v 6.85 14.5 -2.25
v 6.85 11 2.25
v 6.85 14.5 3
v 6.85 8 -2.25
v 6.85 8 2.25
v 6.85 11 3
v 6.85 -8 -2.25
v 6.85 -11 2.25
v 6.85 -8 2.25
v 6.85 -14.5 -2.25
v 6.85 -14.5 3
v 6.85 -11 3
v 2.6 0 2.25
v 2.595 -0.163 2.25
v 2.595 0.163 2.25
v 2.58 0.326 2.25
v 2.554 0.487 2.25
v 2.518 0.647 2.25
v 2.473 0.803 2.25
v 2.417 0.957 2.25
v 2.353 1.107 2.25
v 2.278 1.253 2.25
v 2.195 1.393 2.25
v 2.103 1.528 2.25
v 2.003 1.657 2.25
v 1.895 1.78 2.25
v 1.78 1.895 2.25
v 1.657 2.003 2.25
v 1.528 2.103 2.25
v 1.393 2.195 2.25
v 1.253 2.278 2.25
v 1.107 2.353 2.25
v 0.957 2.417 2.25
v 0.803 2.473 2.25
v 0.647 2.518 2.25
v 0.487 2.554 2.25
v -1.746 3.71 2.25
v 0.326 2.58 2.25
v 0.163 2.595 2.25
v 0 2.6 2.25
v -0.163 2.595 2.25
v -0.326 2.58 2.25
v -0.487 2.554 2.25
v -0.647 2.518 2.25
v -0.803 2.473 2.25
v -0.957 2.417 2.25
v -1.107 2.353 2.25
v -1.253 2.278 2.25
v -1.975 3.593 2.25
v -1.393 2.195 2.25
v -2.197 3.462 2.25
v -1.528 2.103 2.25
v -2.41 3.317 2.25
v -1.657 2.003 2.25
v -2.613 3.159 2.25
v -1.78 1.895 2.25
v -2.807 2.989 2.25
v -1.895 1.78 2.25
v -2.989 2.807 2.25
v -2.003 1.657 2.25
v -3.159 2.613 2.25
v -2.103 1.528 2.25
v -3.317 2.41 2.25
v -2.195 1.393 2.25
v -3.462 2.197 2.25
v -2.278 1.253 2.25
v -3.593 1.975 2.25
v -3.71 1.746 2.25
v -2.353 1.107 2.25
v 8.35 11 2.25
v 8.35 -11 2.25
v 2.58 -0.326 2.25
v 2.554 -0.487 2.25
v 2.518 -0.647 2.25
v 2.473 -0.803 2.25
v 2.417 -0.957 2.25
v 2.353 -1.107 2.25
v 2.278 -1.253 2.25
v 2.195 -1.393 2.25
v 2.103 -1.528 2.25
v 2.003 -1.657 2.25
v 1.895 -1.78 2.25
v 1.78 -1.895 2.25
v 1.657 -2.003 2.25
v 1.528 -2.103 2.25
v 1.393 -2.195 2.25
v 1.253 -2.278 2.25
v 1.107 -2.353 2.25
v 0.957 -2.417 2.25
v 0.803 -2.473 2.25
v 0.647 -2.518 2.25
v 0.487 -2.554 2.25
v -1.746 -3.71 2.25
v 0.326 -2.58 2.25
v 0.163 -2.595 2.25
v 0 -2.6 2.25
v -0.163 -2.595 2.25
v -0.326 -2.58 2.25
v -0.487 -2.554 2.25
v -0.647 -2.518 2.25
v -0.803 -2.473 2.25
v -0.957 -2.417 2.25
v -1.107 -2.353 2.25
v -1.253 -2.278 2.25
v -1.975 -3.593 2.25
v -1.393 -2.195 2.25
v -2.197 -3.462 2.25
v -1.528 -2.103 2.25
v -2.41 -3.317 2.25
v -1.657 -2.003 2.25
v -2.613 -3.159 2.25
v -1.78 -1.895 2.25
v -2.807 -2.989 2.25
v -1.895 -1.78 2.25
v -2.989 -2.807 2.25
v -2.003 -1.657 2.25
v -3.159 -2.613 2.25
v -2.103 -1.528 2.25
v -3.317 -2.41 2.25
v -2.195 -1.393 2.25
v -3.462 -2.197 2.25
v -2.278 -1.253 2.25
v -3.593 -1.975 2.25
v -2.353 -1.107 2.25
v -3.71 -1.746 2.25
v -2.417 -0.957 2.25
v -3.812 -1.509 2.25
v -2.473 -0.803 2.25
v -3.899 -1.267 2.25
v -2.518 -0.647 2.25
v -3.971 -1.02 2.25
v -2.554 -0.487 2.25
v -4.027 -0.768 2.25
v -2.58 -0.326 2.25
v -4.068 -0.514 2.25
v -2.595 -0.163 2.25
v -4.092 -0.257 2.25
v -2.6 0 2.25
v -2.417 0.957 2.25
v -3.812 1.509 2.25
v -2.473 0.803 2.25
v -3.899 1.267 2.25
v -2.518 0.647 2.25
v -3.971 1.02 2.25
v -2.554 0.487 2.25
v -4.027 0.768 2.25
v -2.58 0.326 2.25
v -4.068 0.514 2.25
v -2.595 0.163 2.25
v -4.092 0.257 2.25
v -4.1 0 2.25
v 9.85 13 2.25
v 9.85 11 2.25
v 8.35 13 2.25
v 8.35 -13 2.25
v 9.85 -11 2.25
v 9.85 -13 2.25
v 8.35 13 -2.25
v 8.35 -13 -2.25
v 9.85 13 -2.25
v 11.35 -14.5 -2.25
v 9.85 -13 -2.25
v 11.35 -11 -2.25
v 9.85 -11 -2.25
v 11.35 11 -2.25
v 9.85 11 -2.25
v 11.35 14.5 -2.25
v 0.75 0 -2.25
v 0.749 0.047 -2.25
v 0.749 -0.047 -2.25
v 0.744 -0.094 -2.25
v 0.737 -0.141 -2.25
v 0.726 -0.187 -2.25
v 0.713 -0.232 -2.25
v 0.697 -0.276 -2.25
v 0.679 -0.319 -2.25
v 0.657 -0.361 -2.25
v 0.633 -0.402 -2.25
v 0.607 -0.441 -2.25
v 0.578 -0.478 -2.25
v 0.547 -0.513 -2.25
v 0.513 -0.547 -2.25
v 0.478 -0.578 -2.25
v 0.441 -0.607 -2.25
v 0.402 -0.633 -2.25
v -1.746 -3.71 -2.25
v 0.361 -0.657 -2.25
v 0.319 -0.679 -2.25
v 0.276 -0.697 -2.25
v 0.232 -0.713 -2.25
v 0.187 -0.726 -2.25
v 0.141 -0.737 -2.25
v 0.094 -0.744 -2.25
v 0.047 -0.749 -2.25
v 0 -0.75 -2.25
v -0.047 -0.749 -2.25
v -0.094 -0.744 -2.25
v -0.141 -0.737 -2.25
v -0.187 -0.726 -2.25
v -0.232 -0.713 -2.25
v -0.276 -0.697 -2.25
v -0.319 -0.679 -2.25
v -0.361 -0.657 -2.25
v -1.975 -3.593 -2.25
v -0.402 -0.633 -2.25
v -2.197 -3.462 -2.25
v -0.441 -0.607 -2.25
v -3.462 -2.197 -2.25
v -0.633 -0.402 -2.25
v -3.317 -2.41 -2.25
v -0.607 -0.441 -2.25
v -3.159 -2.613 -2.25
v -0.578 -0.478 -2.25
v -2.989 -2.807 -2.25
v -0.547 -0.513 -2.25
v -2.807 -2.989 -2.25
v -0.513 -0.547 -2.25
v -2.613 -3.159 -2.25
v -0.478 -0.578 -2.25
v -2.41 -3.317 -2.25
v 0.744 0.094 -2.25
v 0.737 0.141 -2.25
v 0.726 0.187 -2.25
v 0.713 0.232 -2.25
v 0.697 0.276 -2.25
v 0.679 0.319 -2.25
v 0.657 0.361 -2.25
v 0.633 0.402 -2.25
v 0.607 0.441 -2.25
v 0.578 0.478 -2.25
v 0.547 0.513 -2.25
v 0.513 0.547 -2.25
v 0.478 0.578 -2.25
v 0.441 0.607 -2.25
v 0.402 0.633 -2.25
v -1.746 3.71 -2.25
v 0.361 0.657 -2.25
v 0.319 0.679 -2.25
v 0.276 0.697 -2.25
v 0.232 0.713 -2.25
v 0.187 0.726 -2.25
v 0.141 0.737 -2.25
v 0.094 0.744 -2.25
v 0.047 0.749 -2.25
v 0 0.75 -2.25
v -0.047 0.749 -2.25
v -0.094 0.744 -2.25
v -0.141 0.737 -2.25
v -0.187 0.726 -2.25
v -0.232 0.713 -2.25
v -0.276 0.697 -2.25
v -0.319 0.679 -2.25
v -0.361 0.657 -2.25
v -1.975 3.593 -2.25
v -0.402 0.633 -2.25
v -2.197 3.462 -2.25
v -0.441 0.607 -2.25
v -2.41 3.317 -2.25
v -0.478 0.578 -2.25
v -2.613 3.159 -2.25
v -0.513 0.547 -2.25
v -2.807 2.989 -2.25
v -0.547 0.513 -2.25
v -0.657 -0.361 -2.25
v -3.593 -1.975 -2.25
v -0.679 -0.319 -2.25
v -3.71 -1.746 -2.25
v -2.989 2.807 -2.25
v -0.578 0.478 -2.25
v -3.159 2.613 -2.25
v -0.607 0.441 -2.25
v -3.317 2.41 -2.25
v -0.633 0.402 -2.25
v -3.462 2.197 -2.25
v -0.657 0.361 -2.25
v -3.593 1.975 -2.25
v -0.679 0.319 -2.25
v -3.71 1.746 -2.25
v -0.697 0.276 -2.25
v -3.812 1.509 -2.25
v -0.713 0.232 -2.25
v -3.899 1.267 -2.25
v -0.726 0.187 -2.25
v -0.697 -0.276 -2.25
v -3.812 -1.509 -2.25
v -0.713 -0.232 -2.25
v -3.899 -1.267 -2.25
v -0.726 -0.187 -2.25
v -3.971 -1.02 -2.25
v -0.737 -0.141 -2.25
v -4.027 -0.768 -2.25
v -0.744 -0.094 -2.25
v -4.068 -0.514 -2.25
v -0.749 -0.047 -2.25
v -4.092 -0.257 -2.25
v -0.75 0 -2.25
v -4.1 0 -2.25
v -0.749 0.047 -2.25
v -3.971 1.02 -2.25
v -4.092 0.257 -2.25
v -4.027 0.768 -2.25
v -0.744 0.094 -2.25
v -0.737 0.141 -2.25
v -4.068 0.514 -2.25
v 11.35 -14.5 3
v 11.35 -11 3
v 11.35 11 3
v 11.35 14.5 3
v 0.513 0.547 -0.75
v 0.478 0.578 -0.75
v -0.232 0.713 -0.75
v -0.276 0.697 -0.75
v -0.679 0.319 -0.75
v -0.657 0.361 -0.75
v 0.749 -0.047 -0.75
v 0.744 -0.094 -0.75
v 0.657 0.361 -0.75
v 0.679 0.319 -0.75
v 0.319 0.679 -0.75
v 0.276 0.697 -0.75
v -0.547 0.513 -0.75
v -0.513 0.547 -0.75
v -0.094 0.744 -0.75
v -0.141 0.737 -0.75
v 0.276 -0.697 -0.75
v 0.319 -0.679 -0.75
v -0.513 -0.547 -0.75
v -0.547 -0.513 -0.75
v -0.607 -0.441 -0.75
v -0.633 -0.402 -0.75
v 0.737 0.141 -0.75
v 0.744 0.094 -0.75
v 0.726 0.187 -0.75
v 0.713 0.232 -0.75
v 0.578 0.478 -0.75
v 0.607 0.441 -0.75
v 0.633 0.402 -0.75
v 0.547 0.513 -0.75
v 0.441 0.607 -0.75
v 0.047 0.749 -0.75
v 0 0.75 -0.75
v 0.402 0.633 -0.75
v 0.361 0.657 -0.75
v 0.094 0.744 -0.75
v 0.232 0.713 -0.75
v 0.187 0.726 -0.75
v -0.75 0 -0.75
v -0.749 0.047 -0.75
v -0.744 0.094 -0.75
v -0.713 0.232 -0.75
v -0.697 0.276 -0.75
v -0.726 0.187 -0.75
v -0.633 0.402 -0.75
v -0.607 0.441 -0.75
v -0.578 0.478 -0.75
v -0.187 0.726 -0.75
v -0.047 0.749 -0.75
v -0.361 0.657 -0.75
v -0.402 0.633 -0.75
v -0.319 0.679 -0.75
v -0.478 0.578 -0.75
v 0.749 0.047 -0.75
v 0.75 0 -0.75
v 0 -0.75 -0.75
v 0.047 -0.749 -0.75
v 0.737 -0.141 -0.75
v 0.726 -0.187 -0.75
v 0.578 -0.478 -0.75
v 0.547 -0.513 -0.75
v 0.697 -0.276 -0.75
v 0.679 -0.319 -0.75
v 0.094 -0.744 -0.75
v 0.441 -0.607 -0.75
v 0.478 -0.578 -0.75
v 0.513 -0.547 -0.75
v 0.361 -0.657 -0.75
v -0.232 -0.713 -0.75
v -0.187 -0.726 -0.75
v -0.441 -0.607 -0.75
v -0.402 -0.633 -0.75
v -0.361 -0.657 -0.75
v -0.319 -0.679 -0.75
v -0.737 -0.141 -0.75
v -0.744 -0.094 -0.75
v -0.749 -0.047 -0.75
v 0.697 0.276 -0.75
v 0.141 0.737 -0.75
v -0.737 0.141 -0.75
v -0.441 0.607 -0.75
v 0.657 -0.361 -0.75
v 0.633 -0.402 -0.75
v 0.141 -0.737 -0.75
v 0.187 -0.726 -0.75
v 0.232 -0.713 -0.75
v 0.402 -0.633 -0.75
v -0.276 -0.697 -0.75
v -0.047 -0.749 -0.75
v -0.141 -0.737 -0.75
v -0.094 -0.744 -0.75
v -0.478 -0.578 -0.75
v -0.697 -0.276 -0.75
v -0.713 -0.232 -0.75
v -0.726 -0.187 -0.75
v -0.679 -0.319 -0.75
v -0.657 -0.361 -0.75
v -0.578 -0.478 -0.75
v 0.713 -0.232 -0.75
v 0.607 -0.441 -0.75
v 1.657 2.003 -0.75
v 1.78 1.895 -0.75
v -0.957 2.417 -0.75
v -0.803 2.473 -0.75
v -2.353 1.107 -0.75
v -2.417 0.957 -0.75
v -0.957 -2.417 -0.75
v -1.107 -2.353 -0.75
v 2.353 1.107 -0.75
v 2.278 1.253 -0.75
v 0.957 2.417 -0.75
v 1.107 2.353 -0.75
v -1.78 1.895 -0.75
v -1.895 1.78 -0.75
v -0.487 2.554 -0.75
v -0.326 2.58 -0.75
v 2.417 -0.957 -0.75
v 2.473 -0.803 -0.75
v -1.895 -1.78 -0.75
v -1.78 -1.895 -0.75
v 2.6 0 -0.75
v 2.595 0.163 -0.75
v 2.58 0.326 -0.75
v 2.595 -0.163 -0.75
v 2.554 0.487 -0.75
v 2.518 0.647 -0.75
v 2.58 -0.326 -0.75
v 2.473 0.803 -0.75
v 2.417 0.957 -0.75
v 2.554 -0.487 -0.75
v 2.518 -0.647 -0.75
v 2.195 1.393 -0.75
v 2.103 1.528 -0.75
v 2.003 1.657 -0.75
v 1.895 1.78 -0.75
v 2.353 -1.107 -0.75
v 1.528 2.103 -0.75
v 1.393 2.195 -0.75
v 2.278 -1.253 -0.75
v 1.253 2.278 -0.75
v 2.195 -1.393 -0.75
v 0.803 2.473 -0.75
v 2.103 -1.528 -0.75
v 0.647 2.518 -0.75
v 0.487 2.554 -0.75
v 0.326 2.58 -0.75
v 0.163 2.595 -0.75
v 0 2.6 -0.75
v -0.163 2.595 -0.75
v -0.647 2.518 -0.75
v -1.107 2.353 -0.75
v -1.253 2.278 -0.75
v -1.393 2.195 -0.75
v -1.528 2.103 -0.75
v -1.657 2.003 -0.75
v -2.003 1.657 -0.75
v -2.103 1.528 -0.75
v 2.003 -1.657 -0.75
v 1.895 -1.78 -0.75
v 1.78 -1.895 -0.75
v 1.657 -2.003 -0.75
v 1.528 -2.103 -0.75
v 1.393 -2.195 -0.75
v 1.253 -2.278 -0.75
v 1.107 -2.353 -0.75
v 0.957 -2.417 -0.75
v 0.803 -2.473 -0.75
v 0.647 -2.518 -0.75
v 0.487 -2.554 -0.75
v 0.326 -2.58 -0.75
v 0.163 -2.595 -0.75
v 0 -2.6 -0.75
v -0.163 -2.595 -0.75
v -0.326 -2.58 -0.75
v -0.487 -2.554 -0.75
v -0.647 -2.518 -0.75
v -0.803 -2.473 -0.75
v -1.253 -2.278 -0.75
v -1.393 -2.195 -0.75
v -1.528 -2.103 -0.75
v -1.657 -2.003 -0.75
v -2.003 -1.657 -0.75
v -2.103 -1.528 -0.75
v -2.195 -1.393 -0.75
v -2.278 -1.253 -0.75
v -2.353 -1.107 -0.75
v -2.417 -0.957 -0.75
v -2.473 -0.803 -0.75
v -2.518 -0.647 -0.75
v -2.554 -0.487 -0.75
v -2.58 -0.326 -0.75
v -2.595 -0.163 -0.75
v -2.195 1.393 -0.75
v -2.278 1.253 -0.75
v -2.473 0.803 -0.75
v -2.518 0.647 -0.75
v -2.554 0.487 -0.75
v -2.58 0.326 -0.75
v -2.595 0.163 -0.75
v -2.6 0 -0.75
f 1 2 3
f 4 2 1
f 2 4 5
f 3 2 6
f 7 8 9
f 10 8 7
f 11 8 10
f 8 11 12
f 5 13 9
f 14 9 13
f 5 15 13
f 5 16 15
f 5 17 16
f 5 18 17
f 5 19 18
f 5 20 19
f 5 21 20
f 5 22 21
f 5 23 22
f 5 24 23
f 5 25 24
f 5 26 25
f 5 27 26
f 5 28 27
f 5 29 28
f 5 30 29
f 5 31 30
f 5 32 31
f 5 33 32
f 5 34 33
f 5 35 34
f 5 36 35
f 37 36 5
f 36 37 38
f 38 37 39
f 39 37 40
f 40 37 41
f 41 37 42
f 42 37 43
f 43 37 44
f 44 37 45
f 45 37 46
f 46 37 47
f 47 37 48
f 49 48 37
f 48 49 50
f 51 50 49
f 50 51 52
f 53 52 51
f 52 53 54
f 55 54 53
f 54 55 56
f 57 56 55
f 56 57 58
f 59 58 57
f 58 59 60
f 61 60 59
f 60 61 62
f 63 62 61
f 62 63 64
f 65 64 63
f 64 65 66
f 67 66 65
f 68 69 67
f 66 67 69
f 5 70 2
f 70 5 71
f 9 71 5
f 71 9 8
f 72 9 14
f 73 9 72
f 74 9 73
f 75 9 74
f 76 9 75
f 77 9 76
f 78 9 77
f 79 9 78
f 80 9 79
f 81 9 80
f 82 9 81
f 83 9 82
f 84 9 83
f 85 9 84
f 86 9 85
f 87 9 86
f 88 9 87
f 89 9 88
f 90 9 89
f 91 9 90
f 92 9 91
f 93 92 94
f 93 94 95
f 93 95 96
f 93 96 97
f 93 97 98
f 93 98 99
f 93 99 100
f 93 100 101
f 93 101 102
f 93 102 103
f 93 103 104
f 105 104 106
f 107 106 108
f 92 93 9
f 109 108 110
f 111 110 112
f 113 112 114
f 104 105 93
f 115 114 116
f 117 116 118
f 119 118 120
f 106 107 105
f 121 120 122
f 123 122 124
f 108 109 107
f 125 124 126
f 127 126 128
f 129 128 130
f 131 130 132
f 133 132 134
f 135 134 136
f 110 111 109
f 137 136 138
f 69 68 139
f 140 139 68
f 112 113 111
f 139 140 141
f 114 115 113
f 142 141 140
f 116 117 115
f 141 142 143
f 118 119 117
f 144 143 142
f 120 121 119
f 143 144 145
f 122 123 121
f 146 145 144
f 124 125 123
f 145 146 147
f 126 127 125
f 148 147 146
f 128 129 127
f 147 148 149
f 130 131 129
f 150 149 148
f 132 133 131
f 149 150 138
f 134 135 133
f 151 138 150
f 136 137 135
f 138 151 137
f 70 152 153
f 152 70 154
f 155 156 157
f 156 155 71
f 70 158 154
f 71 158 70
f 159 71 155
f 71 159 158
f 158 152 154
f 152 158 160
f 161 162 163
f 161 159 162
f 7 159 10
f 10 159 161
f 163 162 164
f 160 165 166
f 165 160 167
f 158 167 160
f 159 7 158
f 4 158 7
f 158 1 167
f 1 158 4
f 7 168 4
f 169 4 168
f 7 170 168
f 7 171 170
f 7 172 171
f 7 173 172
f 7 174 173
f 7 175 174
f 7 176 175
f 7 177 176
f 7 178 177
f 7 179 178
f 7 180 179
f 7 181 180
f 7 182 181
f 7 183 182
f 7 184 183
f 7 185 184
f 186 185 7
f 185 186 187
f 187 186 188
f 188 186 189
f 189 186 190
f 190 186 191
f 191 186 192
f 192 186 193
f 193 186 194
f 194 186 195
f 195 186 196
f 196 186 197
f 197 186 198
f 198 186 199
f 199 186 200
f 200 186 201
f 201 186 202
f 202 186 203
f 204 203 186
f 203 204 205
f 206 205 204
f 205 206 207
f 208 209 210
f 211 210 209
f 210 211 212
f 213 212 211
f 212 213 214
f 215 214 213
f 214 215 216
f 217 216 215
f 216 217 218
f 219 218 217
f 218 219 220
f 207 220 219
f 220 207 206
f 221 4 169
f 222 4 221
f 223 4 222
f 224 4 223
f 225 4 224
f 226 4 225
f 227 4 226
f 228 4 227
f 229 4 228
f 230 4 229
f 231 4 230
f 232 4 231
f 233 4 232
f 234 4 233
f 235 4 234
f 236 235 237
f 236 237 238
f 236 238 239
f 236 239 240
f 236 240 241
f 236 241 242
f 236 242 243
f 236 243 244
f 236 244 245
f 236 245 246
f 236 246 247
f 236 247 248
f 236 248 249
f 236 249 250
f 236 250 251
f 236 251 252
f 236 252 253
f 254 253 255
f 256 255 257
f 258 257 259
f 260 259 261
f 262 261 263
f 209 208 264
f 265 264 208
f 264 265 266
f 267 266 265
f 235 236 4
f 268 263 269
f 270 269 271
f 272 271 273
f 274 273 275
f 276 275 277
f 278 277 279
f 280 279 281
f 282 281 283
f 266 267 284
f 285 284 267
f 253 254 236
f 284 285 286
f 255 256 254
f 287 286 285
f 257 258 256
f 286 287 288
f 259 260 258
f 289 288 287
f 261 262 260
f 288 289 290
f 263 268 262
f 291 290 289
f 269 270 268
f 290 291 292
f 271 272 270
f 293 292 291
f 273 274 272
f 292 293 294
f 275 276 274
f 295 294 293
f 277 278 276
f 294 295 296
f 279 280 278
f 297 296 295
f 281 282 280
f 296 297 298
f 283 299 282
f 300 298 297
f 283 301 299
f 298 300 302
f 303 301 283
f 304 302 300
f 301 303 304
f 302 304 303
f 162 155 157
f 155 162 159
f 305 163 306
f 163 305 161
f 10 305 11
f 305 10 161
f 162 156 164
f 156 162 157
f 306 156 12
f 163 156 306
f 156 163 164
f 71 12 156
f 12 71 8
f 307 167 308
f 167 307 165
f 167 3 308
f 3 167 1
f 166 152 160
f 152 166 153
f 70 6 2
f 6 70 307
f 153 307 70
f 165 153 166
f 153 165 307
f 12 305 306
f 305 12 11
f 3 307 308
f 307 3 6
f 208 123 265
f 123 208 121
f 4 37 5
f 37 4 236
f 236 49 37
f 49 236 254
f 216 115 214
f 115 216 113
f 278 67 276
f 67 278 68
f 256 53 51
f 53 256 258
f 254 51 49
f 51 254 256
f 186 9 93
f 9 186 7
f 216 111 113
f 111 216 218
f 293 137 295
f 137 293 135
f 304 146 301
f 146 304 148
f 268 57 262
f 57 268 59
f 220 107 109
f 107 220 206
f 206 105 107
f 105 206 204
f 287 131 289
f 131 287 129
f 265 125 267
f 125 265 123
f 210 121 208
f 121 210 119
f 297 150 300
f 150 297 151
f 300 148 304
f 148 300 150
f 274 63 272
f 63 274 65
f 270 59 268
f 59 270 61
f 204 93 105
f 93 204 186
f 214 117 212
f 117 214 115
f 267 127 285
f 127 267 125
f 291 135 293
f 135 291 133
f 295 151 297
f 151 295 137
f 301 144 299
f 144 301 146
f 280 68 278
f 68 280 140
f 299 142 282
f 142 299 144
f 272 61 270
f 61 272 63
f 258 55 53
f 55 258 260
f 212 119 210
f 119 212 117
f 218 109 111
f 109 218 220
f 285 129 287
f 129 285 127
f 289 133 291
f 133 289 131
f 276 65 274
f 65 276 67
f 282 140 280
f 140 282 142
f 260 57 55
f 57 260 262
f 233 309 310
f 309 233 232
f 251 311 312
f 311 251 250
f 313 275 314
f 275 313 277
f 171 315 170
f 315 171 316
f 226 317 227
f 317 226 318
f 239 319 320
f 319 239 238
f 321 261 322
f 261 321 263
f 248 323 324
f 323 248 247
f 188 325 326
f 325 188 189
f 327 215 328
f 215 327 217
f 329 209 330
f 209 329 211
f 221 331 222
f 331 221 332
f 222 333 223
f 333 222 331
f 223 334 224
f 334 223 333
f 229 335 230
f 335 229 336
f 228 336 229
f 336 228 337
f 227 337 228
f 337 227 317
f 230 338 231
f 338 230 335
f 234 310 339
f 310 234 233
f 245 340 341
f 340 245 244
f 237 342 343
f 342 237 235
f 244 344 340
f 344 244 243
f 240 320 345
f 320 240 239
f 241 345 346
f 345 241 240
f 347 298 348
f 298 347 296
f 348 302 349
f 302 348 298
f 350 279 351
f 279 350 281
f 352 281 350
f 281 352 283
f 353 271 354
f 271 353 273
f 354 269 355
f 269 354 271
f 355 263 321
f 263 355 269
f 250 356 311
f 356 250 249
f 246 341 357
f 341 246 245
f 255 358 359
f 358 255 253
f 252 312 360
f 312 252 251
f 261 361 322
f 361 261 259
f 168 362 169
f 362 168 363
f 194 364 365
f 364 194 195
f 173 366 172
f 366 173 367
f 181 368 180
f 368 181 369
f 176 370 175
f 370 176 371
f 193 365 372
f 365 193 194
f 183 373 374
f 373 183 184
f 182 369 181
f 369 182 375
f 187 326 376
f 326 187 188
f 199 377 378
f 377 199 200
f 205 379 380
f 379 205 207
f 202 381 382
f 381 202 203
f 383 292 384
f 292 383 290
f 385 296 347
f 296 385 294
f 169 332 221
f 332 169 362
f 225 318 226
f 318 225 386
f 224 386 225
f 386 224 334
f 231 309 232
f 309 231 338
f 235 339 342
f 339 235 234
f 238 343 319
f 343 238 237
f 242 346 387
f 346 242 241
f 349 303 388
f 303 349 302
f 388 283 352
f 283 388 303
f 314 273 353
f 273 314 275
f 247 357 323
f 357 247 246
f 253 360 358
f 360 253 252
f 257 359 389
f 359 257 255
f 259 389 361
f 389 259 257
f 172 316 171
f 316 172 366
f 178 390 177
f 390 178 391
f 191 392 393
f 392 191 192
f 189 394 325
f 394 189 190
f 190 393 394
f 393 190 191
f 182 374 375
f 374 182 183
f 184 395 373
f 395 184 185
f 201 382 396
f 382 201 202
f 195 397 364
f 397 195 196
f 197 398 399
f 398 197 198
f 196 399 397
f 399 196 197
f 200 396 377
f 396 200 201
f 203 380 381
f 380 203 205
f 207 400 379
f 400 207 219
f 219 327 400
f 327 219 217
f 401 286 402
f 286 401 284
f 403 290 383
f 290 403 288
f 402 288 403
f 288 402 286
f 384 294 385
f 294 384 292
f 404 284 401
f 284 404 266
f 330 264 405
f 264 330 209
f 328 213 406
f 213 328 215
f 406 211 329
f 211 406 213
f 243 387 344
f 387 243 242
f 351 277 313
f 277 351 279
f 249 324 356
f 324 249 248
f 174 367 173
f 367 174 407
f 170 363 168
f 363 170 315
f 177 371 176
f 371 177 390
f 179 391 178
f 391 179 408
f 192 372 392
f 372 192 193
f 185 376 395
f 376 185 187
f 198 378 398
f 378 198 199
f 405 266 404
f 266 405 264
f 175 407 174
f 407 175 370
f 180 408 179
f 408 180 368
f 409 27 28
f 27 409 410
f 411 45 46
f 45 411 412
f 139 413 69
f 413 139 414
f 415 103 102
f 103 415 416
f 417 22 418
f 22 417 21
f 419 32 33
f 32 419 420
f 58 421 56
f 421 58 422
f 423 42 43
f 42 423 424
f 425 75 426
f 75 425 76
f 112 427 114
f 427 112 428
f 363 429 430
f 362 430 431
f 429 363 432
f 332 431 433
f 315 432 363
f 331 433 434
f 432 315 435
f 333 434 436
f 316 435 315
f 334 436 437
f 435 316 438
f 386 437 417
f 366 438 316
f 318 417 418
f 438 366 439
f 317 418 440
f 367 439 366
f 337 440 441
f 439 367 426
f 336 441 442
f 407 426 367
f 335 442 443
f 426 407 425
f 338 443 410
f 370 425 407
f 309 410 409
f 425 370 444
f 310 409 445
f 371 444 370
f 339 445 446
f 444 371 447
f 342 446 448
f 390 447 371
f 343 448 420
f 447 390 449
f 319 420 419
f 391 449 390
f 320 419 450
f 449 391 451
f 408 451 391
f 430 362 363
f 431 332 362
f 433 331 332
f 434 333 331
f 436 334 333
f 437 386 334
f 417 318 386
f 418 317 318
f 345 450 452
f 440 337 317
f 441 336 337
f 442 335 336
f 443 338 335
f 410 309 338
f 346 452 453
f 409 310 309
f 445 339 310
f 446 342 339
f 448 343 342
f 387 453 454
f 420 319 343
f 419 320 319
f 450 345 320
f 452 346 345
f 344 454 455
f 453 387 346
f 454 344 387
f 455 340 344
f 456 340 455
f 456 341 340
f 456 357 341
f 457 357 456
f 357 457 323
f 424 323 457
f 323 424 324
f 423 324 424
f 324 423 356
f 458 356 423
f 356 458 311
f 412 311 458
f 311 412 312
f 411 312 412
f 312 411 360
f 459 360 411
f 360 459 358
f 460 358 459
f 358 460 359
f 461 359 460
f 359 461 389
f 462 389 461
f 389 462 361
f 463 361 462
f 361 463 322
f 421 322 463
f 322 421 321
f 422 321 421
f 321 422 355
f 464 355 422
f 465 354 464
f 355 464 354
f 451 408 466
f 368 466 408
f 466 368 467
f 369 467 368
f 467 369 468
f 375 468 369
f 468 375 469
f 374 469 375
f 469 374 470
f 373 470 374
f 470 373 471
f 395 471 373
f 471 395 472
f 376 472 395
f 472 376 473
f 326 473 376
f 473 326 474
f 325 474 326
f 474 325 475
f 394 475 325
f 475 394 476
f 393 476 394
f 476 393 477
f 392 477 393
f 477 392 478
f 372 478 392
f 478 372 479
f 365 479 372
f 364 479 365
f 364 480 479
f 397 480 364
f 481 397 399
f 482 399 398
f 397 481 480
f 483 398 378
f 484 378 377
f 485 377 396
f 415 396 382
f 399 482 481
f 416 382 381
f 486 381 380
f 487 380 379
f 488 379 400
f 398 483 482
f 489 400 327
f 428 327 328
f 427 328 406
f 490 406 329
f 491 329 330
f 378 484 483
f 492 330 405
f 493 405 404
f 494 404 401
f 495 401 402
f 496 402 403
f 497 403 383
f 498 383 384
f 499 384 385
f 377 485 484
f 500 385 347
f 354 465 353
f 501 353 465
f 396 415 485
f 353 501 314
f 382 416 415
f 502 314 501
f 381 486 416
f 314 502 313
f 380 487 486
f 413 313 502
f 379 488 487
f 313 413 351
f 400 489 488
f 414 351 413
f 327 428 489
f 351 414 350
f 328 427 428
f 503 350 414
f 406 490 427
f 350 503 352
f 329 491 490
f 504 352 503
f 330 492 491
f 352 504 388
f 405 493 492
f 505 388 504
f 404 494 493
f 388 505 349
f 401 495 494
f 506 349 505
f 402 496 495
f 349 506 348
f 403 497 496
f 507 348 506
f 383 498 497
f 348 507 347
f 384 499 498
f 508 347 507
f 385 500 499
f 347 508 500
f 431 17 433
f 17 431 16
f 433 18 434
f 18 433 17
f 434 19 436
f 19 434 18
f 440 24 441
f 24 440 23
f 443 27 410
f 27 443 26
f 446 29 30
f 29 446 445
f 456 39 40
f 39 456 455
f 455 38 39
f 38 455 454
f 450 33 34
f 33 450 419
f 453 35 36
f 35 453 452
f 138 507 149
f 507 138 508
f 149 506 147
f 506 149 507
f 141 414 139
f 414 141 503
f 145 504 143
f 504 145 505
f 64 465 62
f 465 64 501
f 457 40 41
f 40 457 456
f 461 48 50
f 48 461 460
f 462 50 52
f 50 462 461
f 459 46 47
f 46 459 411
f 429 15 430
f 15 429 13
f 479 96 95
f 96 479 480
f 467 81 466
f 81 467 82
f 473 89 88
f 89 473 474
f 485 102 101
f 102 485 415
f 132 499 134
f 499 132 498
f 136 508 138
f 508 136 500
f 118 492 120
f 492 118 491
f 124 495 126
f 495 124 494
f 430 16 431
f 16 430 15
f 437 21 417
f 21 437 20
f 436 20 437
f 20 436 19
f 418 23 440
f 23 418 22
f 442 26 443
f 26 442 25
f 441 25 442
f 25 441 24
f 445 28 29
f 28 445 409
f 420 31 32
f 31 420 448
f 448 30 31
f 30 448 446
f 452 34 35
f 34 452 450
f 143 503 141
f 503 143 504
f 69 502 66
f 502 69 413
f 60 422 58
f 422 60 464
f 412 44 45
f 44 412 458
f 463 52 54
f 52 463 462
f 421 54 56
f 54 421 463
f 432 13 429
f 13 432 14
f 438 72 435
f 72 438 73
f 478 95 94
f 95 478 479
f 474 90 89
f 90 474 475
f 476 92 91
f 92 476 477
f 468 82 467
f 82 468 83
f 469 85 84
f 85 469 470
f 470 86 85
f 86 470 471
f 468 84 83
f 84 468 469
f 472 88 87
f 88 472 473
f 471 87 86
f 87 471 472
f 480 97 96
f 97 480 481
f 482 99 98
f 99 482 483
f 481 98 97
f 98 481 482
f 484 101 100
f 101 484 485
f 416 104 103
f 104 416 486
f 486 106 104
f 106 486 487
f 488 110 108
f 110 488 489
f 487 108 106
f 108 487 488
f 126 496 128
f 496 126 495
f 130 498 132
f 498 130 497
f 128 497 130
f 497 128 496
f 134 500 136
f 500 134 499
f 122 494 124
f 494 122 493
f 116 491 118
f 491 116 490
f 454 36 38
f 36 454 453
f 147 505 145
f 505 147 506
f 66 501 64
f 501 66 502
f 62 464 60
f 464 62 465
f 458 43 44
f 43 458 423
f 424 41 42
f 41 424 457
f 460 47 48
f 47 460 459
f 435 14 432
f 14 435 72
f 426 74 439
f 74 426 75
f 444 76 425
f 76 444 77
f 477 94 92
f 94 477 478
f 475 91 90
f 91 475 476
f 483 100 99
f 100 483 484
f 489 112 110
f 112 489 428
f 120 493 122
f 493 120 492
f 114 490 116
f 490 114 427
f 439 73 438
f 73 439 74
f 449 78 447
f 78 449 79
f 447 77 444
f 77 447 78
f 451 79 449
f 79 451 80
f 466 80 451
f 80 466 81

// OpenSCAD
wall_size = 1.5;
pcb_width = 26.0;
shaft_diameter = 5.2;
outer_shaft_diameter = shaft_diameter + wall_size * 2;
wing_offset = 3.5;
shaft_height = 3.0;
pcb_thickness = 1.5;
pcb_grip_size = 2.0;
total_height = shaft_height+wall_size;
grip_width = pcb_width+wall_size *2;

$fn = 100;
difference() {
    union() {
        hull() {
            cylinder(total_height, d=outer_shaft_diameter, center=true);
            translate([wing_offset+outer_shaft_diameter/2,0,0]) cube([wall_size, pcb_width-10, total_height], center=true);
        }
        translate([wing_offset+outer_shaft_diameter/2,0,0]) {
            cube([wall_size, pcb_width, total_height], center=true);
            translate([-wall_size/2,-pcb_width/2-wall_size,(-total_height/2)])          cube([wall_size*2+pcb_thickness, wall_size, total_height]);
            translate([wall_size/2+pcb_thickness, -pcb_width/2-wall_size,(-total_height/2)])          cube([wall_size, pcb_grip_size+wall_size, total_height]);
            
            translate([-wall_size/2,pcb_width/2,(-total_height/2)])          cube([wall_size*2+pcb_thickness, wall_size, total_height]);
            translate([wall_size/2+pcb_thickness, pcb_width/2-pcb_grip_size,(-total_height/2)])          cube([wall_size, pcb_grip_size+wall_size, total_height]);
            
            translate([-wall_size/2, -grip_width/2, total_height/2]) cube([wall_size*2+pcb_thickness, wall_size+ pcb_grip_size, wall_size/2]);
            translate([-wall_size/2, grip_width/2 - wall_size -pcb_grip_size, total_height/2]) cube([wall_size*2+pcb_thickness, wall_size+ pcb_grip_size, wall_size/2]);
        }
    };
    union () {
        cylinder(total_height+1, d=wall_size, center=true);
        translate([0,0,wall_size]) cylinder(total_height, d=shaft_diameter, center=true);
    };
};
